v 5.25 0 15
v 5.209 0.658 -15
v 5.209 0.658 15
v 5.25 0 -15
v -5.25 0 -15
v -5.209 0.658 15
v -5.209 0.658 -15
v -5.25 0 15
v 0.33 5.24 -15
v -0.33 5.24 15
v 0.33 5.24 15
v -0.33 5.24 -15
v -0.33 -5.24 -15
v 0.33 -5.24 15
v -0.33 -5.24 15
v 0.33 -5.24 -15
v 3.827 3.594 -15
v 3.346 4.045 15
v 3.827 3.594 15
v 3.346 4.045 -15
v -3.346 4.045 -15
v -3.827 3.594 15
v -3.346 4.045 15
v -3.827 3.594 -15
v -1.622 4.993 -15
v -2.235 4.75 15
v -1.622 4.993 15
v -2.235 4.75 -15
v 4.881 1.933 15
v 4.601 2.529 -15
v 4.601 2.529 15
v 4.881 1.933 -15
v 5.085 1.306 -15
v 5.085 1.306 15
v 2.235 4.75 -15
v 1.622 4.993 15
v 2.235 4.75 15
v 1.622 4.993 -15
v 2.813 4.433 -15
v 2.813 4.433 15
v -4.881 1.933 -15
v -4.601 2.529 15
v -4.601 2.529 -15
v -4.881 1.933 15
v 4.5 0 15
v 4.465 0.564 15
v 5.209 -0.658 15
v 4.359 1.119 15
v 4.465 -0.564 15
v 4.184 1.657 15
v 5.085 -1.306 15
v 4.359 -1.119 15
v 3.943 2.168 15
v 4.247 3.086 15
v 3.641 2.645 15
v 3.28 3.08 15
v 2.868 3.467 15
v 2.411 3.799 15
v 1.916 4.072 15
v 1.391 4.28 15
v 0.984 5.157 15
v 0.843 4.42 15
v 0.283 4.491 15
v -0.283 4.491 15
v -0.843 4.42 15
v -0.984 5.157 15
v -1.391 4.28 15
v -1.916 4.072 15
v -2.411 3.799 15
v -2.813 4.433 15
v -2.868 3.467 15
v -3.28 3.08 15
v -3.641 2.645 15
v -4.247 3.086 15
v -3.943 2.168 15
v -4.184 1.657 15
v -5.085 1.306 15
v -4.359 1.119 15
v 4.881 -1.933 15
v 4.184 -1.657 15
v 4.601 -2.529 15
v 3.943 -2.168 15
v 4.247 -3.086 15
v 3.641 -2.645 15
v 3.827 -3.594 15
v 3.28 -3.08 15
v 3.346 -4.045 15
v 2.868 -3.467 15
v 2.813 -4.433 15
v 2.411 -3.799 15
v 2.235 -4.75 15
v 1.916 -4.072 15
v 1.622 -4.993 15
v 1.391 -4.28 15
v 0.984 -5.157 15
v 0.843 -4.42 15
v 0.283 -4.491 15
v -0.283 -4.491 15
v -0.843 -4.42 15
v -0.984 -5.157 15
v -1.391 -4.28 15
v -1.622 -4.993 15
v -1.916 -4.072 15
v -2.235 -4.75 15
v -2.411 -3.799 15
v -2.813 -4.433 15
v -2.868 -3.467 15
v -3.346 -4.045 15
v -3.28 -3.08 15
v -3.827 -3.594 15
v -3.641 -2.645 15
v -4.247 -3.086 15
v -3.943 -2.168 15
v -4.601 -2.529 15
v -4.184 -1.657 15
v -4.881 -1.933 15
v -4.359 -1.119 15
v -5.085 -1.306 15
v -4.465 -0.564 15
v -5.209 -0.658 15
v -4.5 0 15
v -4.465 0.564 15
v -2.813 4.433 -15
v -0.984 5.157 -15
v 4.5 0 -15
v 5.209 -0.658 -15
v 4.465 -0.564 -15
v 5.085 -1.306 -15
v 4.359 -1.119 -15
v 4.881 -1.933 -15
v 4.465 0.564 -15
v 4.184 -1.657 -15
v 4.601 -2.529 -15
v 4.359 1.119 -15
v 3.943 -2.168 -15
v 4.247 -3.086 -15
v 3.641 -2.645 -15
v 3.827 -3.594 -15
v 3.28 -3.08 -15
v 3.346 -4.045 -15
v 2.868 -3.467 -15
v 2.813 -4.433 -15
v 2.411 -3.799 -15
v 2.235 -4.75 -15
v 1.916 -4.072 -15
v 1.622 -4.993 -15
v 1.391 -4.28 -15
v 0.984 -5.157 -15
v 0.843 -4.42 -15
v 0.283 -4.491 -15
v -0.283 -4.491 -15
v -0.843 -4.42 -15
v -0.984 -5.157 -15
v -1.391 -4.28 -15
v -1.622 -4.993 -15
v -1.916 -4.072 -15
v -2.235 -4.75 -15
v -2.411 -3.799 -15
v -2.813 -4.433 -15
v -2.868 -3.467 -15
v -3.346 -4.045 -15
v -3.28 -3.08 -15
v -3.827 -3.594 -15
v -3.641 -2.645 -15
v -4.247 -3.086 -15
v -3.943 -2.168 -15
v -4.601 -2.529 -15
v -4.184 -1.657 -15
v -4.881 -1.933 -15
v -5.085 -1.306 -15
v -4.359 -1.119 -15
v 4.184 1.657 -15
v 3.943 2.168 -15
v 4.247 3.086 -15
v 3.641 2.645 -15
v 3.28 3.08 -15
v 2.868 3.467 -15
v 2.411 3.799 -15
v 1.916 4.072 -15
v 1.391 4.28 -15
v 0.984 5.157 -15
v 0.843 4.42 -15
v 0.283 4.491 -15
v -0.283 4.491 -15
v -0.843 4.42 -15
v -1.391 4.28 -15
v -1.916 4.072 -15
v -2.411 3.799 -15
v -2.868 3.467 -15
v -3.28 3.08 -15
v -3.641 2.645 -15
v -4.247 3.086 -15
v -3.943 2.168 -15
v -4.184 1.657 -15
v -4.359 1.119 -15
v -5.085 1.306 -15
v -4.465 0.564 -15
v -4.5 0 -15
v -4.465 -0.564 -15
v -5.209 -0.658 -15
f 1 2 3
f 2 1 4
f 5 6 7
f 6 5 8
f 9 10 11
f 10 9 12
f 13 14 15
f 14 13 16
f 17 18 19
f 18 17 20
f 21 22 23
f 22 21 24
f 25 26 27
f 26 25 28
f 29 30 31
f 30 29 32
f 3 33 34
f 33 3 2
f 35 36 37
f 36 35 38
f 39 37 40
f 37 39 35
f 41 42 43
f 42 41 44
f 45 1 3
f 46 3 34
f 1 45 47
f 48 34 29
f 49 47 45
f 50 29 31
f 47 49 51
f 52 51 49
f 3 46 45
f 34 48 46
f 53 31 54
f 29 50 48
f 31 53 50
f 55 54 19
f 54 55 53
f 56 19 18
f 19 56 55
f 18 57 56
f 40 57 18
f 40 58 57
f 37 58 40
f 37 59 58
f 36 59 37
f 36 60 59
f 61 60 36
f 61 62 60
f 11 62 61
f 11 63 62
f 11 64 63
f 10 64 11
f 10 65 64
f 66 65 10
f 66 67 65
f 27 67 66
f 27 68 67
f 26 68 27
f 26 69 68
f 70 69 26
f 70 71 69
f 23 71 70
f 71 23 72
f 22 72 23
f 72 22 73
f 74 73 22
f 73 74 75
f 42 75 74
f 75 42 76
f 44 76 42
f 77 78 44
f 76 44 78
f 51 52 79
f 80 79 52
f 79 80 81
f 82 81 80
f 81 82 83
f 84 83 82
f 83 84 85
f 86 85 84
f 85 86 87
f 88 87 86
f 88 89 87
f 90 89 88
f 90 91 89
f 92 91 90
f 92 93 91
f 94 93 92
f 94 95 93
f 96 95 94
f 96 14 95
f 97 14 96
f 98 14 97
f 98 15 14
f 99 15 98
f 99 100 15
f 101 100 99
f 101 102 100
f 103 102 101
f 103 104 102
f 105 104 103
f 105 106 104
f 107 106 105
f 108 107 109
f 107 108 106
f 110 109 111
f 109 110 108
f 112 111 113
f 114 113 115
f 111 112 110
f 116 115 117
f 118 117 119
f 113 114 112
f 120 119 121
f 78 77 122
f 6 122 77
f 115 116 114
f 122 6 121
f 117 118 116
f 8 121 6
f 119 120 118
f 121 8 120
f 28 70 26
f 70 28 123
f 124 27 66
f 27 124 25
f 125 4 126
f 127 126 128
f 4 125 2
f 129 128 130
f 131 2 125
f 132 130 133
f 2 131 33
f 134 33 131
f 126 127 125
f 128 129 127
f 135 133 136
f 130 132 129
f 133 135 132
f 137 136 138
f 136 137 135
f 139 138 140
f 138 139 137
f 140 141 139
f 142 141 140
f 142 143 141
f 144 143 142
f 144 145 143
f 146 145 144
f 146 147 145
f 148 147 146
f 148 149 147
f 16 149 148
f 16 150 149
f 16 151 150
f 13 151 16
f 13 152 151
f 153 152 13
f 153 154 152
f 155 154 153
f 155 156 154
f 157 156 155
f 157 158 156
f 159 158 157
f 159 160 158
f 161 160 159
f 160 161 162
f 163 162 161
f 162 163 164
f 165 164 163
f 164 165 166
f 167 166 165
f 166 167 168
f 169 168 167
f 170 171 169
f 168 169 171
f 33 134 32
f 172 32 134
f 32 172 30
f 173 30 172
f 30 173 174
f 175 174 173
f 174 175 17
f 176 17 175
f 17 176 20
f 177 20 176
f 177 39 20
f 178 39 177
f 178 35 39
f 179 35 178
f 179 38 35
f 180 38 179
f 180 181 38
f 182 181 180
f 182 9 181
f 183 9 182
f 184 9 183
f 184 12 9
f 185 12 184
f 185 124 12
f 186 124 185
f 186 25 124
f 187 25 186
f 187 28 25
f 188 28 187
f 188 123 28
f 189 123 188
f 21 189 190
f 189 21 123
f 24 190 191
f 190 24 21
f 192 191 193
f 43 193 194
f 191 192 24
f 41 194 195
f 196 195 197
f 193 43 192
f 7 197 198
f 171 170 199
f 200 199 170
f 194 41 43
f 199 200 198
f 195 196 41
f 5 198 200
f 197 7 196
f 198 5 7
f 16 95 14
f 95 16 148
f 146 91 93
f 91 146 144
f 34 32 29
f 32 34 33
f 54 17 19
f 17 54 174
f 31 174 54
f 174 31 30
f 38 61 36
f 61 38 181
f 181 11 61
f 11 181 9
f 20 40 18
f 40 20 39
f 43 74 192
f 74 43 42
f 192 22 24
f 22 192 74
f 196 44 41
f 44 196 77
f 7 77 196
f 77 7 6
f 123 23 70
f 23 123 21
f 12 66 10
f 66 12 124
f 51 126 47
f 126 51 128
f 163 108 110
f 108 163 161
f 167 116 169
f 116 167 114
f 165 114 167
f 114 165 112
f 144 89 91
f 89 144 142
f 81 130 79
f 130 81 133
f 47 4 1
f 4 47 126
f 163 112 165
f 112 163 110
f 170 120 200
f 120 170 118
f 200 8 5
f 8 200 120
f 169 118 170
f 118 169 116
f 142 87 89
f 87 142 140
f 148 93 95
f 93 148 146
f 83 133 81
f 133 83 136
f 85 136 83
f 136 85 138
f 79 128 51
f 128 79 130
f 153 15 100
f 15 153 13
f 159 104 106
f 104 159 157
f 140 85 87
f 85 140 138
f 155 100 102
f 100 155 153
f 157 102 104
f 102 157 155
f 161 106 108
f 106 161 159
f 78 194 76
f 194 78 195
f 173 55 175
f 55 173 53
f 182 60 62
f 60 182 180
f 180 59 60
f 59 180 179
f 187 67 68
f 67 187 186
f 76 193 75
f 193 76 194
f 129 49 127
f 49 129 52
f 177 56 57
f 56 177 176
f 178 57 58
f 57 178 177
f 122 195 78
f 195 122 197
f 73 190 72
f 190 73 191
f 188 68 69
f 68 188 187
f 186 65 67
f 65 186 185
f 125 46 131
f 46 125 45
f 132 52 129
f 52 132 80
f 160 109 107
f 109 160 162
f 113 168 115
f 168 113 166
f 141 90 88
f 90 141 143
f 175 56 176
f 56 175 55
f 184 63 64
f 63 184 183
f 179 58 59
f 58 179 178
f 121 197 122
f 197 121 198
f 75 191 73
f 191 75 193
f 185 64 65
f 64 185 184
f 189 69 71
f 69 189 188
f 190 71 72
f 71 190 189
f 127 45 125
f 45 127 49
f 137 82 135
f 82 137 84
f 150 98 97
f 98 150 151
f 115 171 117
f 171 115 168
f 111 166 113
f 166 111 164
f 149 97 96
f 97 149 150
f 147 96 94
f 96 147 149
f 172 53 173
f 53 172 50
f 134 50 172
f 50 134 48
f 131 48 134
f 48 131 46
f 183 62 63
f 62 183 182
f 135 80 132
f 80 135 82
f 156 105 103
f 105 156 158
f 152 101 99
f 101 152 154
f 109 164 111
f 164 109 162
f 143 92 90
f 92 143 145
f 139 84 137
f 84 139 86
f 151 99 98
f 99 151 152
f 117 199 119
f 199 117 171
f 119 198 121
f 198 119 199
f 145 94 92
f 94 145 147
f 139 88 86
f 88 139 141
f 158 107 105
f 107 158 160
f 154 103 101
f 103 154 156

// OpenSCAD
$fn = 50;


difference() {
	union() {
		translate(v = [0, 0, -15.0000000000]) {
			cylinder(h = 30, r = 5.2500000000);
		}
	}
	union() {
		translate(v = [0, 0, -100.0000000000]) {
			cylinder(h = 200, r = 4.5000000000);
		}
	}
}
